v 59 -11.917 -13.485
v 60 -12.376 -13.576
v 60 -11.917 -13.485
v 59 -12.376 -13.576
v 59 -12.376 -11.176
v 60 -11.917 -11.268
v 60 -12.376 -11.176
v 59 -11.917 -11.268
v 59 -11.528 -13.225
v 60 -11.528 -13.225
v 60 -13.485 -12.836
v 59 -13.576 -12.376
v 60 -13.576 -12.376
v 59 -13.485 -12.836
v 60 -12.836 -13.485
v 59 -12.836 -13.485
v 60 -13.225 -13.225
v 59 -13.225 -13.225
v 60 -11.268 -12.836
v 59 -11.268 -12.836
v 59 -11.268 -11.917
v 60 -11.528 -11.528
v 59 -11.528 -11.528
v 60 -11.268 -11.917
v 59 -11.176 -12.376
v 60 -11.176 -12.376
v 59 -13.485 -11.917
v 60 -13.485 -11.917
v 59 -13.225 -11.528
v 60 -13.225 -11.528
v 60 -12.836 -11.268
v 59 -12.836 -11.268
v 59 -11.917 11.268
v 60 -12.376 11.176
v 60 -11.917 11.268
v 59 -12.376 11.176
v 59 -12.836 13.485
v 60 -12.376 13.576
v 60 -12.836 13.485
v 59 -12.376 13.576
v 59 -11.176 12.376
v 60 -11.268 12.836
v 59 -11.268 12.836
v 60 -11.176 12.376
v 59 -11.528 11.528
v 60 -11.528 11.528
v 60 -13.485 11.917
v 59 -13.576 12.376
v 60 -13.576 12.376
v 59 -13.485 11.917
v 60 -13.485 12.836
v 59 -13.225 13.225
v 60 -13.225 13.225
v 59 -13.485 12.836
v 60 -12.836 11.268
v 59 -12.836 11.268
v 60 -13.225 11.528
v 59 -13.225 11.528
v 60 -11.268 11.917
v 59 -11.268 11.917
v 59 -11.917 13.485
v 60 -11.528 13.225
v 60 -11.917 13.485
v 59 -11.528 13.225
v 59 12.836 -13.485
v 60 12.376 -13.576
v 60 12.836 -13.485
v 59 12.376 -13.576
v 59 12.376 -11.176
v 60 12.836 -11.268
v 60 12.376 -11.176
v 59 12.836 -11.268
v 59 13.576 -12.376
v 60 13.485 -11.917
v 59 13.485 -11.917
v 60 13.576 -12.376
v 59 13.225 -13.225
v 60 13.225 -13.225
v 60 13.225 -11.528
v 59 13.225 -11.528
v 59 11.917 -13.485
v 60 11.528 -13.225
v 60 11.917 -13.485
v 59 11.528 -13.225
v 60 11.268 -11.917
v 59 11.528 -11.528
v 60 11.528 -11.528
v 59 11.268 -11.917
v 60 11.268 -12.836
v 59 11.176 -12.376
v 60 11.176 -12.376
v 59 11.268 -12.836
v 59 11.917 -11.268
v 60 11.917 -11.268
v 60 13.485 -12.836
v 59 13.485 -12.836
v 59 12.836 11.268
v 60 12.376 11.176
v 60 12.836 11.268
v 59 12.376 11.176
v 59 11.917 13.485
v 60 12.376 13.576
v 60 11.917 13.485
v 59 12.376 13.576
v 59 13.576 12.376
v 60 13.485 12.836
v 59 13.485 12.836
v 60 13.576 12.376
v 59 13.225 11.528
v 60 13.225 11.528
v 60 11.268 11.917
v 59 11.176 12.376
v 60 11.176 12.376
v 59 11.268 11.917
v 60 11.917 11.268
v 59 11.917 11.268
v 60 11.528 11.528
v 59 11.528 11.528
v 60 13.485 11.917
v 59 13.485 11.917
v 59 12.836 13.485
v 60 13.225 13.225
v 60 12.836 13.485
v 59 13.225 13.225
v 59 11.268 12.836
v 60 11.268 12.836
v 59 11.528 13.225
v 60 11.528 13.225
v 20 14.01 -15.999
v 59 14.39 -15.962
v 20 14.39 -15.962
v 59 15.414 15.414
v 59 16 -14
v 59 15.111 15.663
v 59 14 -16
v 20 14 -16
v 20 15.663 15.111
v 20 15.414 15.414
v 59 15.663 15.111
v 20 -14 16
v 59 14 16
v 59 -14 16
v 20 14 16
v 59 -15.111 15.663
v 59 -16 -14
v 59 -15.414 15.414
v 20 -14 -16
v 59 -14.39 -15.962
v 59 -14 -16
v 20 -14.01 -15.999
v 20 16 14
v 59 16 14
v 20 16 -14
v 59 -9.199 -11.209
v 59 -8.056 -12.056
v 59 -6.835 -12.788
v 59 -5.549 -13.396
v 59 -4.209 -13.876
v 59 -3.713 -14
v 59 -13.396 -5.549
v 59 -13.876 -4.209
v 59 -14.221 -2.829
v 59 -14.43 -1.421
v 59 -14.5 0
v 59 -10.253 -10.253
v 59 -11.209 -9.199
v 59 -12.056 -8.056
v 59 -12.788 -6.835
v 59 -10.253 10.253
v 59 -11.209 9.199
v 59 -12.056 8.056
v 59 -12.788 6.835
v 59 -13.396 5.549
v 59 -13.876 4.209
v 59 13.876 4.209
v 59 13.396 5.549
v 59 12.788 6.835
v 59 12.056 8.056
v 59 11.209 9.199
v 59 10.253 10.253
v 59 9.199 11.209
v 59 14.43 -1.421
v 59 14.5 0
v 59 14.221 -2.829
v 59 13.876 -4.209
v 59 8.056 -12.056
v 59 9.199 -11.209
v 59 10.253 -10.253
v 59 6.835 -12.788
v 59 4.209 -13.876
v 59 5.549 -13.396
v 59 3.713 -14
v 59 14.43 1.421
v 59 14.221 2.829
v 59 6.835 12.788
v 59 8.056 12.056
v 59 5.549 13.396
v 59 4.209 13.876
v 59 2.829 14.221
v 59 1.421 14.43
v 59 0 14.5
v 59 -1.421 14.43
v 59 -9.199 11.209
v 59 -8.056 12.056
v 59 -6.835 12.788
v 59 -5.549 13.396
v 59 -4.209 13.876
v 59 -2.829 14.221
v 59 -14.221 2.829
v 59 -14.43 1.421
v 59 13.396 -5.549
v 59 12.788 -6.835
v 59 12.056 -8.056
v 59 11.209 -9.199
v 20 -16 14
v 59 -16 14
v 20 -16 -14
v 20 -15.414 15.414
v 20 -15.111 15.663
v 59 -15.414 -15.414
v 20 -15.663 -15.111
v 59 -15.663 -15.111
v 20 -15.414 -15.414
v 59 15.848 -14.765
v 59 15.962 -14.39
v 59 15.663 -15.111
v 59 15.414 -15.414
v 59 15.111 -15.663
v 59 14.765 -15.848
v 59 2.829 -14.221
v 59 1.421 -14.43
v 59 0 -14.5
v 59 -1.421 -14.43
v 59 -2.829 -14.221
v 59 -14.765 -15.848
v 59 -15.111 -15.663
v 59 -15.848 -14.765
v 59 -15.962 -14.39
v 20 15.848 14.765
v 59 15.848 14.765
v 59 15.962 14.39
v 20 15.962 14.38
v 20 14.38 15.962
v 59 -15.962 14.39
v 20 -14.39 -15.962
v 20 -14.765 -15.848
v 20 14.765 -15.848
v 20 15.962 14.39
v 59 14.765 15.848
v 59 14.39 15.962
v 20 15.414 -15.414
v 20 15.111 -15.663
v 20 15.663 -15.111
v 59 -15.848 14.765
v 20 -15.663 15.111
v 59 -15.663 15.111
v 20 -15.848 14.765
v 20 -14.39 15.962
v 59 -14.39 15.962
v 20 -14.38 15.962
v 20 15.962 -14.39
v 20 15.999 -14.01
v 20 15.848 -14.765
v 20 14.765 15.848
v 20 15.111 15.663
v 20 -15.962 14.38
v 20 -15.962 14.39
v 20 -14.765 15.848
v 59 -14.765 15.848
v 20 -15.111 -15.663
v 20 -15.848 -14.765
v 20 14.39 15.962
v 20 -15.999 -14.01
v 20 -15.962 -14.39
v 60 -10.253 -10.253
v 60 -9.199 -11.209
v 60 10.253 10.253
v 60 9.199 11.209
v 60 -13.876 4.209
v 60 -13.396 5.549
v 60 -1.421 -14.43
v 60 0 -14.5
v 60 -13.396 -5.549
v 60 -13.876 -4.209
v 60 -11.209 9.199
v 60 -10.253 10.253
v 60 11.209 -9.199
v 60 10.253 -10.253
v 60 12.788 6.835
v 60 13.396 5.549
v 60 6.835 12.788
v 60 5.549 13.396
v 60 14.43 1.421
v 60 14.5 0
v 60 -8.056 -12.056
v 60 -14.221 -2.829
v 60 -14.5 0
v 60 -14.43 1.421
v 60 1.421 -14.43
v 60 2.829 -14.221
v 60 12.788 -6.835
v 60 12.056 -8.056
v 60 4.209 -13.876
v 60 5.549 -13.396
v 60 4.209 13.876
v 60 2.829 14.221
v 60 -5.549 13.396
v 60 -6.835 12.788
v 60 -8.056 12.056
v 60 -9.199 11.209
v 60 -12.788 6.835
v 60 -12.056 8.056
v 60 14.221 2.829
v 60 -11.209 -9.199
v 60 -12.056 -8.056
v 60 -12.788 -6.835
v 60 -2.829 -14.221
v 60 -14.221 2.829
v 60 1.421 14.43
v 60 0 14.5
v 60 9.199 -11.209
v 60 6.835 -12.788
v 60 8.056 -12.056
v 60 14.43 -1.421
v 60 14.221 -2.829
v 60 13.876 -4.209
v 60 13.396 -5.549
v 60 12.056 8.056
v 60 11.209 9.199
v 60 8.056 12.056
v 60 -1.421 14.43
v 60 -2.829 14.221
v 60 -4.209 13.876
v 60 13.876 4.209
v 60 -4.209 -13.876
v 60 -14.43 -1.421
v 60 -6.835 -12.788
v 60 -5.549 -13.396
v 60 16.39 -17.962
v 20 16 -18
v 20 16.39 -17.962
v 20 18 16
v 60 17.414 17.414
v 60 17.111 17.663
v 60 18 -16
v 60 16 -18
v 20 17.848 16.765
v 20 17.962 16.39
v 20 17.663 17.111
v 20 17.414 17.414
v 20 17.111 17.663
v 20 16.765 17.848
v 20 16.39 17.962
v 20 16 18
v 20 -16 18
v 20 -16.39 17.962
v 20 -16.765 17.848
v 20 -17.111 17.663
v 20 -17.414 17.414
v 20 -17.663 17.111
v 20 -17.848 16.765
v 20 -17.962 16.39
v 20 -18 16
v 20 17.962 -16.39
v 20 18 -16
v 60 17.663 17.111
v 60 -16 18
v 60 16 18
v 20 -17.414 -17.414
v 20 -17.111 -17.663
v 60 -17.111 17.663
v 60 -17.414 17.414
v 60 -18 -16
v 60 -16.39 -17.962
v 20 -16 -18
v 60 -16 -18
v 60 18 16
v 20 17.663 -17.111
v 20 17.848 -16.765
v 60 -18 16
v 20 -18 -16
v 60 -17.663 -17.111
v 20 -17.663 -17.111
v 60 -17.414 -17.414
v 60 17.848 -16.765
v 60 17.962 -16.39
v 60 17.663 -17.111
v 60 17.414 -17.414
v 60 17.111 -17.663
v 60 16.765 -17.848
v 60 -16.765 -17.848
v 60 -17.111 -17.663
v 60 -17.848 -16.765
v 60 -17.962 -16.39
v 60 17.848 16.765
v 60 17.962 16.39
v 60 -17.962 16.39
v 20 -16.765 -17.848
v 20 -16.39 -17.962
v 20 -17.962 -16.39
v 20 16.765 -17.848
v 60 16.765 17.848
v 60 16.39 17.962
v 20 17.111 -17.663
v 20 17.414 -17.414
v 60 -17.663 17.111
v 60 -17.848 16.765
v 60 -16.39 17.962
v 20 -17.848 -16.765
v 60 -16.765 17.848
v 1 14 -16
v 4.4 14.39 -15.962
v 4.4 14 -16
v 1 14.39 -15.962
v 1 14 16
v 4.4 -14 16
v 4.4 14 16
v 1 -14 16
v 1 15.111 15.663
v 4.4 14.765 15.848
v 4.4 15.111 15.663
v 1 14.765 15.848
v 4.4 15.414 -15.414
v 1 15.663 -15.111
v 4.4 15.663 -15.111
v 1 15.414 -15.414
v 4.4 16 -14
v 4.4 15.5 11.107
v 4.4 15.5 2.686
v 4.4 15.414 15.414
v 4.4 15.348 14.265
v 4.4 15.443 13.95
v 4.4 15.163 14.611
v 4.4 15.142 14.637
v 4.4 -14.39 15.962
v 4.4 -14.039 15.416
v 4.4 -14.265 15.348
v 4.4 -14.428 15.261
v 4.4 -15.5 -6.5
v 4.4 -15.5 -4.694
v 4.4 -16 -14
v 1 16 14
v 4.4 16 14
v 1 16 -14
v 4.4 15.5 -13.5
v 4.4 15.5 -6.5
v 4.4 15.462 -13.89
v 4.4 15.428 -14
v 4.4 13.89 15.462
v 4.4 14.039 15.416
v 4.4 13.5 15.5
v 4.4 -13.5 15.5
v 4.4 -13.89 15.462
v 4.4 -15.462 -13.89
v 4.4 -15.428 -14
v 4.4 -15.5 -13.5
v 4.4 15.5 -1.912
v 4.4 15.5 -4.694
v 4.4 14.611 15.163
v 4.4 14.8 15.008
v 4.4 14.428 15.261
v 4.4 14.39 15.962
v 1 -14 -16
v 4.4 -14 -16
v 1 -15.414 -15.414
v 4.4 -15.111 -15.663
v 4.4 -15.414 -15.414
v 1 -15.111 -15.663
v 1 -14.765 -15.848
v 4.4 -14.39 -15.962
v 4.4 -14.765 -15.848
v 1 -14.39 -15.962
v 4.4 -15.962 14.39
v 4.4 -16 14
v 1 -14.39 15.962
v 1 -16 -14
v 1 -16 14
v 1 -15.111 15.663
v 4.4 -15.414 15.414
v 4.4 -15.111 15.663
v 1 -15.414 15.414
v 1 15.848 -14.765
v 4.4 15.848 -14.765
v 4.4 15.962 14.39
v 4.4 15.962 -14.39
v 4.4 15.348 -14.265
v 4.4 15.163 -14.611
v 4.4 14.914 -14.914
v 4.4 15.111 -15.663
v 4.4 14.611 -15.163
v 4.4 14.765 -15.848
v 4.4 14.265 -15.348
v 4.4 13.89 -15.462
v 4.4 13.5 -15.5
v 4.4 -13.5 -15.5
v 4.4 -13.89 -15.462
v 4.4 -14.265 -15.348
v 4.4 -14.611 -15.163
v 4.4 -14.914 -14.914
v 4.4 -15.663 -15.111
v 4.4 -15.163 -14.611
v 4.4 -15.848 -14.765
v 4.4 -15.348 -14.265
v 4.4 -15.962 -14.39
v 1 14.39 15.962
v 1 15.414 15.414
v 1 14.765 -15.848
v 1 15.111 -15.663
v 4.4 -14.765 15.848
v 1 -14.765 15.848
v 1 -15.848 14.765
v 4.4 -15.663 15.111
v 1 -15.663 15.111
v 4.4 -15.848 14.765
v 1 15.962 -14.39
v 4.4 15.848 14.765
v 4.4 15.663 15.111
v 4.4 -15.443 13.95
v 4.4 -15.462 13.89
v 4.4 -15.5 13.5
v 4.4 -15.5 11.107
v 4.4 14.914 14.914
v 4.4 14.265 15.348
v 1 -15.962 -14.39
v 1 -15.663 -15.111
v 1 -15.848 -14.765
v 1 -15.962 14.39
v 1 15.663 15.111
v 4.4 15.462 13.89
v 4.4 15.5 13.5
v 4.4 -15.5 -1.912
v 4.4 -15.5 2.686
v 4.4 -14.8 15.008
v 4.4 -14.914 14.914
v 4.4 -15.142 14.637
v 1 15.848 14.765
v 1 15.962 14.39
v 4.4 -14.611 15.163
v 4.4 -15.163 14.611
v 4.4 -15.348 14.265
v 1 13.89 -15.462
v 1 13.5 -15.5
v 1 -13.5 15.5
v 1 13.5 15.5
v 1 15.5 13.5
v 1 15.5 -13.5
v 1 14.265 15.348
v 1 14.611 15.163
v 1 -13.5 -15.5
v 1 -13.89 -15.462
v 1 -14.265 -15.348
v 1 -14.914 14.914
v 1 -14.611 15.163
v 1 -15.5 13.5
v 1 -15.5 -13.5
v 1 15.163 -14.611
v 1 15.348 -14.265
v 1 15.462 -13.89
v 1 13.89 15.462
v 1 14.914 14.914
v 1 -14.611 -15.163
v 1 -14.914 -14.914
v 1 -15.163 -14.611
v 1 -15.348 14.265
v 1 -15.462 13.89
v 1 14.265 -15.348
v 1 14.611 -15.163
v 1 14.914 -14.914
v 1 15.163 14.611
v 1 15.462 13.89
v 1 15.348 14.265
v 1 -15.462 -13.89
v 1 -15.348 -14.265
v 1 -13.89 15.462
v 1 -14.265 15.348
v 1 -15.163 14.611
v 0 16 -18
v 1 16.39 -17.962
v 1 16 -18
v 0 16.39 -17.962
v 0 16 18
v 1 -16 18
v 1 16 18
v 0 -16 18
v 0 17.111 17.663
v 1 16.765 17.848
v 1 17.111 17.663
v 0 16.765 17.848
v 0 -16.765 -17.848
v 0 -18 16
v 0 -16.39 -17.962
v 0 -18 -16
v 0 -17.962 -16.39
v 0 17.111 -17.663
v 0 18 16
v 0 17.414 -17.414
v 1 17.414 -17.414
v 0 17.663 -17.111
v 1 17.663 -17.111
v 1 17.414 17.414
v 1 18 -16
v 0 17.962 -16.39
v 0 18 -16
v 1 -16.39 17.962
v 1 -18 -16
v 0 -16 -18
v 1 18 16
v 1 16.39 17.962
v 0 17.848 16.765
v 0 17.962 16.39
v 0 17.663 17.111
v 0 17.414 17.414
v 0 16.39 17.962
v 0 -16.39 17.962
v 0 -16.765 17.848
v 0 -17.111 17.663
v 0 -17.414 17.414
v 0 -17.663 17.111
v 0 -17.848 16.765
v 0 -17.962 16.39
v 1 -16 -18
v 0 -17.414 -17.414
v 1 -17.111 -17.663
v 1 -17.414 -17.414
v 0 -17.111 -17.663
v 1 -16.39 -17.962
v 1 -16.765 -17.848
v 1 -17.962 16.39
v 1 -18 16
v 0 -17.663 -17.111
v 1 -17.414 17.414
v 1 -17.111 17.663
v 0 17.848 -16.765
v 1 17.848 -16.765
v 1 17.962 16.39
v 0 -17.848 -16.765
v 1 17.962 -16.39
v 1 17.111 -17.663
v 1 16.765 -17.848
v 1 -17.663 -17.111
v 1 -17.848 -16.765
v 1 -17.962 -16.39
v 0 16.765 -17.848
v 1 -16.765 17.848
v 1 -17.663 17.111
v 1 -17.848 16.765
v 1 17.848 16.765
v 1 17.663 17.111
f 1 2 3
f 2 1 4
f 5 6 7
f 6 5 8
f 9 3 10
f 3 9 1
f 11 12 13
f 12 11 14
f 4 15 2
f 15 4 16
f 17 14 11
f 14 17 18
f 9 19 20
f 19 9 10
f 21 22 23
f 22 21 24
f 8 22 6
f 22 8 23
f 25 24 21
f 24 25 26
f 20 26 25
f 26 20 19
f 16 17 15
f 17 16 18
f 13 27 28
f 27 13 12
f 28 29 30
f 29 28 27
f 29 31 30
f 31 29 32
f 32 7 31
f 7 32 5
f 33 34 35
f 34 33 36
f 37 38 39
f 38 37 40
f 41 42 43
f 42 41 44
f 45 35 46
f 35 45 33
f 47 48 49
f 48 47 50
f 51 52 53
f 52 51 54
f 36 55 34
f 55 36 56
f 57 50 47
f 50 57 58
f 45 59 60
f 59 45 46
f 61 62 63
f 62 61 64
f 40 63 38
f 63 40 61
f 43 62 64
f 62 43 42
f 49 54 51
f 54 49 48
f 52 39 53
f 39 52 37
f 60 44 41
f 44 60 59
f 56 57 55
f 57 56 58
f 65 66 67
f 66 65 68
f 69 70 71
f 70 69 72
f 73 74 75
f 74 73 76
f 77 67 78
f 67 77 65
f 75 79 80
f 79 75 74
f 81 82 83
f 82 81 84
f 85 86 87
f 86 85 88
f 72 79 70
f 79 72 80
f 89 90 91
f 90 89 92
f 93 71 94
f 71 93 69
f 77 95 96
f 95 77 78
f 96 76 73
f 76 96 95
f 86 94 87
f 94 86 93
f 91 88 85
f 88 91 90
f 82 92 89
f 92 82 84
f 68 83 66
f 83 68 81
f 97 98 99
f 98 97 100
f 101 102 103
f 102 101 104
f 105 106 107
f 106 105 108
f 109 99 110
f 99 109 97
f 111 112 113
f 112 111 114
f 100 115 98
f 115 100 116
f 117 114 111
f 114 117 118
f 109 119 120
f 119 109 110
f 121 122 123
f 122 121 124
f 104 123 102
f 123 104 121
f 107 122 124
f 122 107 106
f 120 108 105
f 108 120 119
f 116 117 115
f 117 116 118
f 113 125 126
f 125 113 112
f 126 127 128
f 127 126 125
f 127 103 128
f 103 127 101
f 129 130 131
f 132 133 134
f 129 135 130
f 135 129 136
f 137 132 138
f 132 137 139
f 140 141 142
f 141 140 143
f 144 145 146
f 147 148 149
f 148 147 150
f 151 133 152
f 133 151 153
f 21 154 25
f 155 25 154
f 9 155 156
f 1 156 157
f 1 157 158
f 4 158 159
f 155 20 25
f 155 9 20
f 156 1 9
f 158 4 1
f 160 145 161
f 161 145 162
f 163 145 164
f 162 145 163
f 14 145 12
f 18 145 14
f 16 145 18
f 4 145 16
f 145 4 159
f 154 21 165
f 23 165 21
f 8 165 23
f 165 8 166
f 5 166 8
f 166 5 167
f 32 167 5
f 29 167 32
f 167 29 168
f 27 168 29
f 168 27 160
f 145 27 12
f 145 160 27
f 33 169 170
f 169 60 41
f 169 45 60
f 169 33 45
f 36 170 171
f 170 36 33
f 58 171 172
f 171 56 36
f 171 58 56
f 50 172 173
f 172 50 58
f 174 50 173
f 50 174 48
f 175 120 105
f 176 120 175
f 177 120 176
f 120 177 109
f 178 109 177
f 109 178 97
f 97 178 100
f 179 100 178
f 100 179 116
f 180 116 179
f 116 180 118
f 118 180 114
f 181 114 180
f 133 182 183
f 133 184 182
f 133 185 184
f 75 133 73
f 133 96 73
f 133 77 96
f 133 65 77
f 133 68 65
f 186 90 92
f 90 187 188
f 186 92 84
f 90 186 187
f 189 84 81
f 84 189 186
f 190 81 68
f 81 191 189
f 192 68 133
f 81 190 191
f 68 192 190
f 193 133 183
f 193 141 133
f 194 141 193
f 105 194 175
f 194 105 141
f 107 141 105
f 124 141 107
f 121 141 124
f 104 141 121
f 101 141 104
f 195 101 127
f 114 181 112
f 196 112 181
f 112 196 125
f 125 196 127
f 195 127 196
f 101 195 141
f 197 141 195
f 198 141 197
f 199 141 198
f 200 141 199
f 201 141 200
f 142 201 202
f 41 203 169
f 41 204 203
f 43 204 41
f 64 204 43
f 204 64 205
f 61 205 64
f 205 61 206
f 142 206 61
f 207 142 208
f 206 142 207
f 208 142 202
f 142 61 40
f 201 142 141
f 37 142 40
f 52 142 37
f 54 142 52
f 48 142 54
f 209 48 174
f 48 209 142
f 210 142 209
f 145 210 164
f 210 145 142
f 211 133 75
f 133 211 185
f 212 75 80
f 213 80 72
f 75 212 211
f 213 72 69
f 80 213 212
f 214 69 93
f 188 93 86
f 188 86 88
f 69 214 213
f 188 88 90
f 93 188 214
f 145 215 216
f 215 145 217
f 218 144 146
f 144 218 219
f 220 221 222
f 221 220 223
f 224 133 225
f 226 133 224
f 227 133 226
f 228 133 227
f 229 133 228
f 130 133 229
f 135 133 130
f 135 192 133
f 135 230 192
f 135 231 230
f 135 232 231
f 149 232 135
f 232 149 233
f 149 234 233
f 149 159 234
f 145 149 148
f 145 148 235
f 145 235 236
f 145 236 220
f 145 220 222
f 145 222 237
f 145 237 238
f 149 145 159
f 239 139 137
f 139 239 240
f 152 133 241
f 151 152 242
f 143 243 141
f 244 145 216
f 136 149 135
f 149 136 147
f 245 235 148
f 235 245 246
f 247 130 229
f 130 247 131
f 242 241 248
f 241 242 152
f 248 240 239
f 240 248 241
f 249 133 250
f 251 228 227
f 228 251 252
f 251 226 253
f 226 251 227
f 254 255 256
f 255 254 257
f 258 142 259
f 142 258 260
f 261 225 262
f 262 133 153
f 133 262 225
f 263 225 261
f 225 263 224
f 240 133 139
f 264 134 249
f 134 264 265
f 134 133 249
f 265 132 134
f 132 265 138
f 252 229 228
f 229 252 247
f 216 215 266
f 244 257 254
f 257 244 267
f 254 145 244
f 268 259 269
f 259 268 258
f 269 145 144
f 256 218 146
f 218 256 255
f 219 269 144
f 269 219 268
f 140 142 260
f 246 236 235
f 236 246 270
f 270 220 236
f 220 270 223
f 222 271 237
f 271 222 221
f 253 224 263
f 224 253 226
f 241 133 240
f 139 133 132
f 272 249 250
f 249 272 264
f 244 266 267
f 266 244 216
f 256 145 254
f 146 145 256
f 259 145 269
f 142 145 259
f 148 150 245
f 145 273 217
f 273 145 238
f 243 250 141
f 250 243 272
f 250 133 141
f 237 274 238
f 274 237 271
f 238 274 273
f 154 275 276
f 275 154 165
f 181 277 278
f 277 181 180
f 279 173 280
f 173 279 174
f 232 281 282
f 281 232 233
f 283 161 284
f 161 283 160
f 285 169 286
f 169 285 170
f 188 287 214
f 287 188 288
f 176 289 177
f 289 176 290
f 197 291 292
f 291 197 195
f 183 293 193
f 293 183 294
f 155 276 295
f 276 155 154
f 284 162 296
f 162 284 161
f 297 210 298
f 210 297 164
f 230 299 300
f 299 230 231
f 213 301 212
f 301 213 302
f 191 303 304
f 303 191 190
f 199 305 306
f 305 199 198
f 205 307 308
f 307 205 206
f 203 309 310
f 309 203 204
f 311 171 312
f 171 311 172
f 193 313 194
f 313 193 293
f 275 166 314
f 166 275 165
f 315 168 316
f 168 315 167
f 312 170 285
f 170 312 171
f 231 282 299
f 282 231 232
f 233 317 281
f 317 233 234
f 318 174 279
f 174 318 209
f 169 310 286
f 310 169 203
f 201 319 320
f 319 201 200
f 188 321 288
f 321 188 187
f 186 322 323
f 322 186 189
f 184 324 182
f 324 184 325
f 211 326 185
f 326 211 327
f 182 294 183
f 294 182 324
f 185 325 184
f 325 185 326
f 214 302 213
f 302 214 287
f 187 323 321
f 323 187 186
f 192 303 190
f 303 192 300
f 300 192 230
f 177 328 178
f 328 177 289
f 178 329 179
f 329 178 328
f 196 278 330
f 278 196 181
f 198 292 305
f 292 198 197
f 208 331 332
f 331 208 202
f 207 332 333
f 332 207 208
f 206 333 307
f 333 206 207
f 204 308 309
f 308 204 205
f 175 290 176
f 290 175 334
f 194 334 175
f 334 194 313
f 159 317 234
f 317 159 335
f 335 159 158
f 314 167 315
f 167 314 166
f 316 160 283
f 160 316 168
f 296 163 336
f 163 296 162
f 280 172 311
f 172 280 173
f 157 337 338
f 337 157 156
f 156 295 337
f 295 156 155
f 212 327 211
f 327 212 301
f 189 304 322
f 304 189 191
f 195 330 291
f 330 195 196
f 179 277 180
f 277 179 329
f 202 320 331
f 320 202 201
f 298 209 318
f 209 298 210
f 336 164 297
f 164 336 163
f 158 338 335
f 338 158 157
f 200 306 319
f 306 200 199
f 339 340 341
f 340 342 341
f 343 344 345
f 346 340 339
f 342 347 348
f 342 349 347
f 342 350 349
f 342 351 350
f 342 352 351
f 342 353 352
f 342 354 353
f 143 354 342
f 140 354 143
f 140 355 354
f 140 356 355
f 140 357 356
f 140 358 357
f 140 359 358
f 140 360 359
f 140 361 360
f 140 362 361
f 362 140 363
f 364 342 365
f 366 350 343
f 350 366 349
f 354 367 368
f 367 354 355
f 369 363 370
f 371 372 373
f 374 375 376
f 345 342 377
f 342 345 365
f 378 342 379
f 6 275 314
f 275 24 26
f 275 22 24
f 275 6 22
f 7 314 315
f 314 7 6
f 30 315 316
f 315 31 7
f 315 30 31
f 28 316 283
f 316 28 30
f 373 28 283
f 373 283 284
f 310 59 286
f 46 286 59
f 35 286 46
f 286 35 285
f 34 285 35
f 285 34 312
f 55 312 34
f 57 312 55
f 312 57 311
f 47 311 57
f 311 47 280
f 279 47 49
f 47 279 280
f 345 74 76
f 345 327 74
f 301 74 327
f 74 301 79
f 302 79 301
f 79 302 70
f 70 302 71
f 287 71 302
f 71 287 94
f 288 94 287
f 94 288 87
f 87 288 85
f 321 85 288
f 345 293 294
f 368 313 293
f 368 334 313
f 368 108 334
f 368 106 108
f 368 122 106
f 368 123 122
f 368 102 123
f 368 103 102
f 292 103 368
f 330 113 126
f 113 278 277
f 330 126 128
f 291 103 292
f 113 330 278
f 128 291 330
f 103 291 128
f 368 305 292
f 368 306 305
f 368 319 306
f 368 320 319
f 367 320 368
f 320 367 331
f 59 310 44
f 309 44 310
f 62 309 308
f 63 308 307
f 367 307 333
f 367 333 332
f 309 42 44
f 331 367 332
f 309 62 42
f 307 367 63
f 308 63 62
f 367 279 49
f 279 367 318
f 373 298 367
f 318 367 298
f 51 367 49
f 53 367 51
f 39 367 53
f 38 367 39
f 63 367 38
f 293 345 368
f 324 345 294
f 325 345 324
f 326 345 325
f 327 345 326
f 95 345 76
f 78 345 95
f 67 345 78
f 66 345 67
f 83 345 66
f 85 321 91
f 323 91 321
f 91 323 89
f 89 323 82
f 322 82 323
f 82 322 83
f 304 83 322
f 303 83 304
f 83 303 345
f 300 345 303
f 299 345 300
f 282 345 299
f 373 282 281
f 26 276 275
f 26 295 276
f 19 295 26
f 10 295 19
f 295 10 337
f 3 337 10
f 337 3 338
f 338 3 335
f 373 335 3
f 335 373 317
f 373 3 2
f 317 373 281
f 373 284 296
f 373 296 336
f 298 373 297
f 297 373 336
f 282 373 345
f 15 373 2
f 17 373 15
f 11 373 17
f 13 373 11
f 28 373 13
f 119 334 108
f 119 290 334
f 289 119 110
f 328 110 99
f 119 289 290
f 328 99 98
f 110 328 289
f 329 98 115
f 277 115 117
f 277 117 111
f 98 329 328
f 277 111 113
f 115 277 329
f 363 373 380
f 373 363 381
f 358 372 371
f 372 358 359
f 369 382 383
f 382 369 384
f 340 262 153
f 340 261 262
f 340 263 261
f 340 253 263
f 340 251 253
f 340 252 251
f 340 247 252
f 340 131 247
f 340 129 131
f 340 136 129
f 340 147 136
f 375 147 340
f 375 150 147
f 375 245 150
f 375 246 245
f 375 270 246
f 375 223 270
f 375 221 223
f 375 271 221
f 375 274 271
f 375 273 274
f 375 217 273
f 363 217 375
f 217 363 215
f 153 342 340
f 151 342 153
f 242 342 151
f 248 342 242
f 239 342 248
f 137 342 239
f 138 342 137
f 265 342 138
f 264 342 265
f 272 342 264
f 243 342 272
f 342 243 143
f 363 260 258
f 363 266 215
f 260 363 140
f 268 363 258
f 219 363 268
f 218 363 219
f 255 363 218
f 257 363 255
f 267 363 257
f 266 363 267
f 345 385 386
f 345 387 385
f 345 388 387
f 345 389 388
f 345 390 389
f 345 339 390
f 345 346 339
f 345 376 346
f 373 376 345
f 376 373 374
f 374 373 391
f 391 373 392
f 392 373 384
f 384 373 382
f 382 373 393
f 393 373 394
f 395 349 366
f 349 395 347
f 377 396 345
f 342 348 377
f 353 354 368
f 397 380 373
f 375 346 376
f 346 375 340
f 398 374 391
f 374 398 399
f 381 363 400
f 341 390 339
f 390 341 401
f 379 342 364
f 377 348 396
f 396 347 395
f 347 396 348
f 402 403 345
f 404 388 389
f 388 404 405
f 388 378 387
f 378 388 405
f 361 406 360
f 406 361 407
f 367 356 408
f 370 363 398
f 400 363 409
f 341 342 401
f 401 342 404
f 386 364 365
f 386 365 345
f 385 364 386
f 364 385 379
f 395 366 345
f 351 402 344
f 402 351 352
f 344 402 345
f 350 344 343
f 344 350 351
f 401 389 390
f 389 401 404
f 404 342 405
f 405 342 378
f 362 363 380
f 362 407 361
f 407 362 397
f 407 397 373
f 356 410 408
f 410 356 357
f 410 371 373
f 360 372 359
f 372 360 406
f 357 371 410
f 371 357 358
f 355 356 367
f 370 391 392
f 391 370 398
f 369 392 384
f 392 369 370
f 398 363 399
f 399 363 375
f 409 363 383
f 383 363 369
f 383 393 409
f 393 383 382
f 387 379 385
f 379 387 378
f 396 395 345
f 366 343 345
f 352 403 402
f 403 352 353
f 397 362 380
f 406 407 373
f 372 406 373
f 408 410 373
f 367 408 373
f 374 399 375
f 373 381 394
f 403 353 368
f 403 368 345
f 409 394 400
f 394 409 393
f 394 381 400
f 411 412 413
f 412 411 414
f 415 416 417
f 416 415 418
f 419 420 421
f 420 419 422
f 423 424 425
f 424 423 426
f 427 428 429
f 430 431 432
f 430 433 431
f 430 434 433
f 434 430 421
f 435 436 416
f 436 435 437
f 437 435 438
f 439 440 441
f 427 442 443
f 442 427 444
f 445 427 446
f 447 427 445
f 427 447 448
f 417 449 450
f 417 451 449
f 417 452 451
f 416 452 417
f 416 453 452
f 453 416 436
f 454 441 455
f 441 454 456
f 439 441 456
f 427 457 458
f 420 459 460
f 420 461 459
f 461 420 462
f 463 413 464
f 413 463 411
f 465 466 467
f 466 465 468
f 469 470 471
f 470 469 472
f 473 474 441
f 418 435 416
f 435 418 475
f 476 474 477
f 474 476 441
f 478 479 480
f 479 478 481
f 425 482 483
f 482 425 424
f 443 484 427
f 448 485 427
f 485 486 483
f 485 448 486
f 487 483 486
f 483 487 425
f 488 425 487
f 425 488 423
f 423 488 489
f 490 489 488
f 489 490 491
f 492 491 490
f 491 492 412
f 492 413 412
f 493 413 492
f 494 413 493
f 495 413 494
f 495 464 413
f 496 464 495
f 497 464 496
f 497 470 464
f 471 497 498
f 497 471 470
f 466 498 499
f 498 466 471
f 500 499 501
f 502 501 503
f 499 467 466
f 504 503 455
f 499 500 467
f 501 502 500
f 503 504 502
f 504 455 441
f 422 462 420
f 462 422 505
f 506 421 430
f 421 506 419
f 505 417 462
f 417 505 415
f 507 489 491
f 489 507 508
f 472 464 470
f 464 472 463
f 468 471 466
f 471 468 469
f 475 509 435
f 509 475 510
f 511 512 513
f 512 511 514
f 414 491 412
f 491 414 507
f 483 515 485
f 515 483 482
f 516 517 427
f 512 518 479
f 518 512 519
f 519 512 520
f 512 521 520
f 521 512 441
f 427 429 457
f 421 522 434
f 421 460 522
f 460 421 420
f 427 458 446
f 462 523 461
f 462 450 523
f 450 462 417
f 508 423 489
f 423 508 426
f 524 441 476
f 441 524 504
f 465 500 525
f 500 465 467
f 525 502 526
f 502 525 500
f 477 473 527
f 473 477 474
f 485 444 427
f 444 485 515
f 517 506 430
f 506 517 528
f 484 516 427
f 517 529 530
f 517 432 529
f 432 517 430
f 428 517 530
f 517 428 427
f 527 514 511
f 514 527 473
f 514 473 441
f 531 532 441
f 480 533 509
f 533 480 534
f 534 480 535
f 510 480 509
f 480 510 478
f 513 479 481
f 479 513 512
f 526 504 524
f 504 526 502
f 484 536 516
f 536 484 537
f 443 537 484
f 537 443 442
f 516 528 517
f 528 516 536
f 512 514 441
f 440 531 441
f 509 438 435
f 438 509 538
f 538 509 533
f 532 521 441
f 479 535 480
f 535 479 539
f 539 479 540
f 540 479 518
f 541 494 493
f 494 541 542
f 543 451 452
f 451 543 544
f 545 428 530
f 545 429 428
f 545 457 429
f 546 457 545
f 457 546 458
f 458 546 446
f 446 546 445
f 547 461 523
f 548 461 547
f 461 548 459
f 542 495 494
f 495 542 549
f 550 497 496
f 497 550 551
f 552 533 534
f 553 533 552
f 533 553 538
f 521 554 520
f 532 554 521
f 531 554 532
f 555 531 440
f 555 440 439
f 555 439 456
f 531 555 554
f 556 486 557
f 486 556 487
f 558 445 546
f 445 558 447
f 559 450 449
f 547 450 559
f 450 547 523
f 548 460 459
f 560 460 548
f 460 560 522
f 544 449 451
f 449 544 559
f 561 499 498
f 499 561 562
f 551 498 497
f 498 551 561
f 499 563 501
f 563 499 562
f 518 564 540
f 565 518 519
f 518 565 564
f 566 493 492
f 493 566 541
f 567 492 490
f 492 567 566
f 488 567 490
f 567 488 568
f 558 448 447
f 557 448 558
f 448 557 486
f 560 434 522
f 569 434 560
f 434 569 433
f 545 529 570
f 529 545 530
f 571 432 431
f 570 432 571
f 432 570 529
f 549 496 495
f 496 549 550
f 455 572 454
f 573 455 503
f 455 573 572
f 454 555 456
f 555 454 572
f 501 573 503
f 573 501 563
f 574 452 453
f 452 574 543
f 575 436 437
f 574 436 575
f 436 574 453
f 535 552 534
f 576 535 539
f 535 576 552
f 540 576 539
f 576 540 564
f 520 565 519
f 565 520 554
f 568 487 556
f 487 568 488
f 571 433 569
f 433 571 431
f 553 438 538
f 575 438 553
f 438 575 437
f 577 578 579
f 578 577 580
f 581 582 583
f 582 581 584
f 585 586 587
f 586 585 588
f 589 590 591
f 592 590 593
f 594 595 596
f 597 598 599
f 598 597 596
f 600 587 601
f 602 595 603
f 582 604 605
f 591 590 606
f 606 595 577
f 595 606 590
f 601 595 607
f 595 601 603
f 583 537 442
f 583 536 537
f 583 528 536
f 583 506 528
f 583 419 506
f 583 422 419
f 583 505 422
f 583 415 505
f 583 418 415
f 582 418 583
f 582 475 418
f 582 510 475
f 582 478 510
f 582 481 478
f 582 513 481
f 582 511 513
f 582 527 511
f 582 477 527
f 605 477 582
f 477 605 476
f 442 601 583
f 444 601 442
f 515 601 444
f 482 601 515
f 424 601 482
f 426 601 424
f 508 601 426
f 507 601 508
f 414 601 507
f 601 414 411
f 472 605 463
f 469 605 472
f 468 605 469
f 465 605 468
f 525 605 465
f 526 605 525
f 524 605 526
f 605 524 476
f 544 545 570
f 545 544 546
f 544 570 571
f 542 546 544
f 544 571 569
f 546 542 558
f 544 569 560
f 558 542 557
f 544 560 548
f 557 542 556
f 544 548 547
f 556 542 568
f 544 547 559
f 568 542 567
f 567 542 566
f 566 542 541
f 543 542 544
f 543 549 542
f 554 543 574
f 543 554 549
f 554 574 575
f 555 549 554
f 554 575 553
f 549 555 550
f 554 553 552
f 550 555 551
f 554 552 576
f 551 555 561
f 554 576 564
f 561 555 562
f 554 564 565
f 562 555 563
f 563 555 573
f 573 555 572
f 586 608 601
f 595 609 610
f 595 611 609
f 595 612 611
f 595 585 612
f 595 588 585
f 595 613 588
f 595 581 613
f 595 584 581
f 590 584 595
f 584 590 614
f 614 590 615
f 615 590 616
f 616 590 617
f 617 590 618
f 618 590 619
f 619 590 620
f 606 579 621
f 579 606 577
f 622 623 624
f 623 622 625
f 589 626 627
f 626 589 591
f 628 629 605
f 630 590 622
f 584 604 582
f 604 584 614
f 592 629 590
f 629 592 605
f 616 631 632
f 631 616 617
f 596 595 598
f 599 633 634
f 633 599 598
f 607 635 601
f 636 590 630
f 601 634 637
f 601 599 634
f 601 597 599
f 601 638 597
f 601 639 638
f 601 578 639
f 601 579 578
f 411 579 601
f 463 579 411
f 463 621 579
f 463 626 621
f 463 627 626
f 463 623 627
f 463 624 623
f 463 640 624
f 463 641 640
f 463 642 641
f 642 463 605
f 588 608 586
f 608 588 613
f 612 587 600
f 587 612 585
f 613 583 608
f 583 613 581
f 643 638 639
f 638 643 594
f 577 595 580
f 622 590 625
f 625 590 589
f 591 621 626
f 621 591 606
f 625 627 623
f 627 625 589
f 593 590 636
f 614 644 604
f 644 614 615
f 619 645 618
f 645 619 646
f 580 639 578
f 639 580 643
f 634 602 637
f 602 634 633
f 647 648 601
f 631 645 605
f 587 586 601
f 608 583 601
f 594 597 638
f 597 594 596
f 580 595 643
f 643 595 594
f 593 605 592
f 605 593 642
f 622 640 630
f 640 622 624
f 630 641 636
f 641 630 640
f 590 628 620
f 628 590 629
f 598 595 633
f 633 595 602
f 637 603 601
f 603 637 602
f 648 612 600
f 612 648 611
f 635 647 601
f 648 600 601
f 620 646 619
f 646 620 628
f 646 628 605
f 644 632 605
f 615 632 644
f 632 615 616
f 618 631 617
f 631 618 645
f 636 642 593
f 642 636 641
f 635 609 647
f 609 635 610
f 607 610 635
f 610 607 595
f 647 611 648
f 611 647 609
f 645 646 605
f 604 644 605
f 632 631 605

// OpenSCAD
// file: ../speaker_stand.scad
//
// Speaker Stand
//
// by Yasuhiro Wabiko
//
// This work is licensed under a Creative Commons Attribution 4.0 International License.
// https://creativecommons.org/licenses/by/4.0/
//
use <prim.scad>

default_stand_z =40;
default_base_x = 36;
default_base_y = 36;
default_base_z = 4;
default_base_r = 2;
default_pole_r = 4; // pole body radius
default_pole_z = 36;
default_pole_rr = 1; // pole corner radius
default_joint_z = 2;
default_joint_extra_z = 0;
default_joint_r = 3;


WELDING = 0.1;

// render target; this is meant to be overriden by Makefile
TARGET="default";

//
// top level logic
//
speaker_stand_main();

module speaker_stand_main(target=TARGET){
    
    if (target == "default") {
        speaker_stand(stand_z=40, base_x=30, base_y=30, pole_r=8);
    }

    if (target == "ce32a") {
        speaker_stand(stand_z=40, base_x=(36-2)*0.8, base_y=(36-2)*0.8, pole_r=4);
    }

    if (target == "ce32a_type2") {
        speaker_stand(stand_z=40, base_x=(33.2-2)*0.8, base_y=(33.2-2)*0.8, pole_r=4);
    }

    if (target == "b1s") {
        speaker_stand(stand_z=40, base_x=(40-2)*0.8, base_y=(40-2)*0.8, pole_r=4);
    }

    if (target == "ce32a_tallboy") {
        speaker_stand(stand_z=40, base_z=0, pole_r=18, base_x=32*0.8, base_y=32*0.8);
    }

    if (target == "b1s_tallboy") {
        speaker_stand(stand_z=40, base_x=(40-2)*0.8, base_y=(40-2)*0.8, pole_r=4);
    }

}

// [Public]
// A speaker stand.
//
// stand_z = total height (= base height + pole height) i.e how high the speaker is put from the ground.
// (base_x, base_y, base_z, base_r) = stand base dimension
// (joint_z, joint_r) = joint configuration
// pole_r = pole radius
//
// NOTE: pole height is generated by total height - base_height.
module speaker_stand(stand_z = default_stand_z,
                     base_x = default_base_x,
                     base_y = default_base_y,
                     base_z = default_base_z,
                     base_r = default_base_r,
                     joint_r = default_joint_r,
                     joint_z = default_joint_z,
                     pole_r = default_pole_r,
                     pole_rr = default_pole_rr) {

    pole_z = stand_z-base_z;

    speaker_stand_unit(stand_z = stand_z,
                       base_x = base_x,
                       base_y = base_y,
                       base_z = base_z,
                       base_r = base_r,
                       joint_r = joint_r,
                       joint_z = joint_z,
                       pole_r = pole_r,
                       pole_z = pole_z,
                       pole_rr = default_pole_rr );
}

// (for testing) when you want to override design parameters in detail
module speaker_stand_unit(stand_z = default_stand_z,
                          base_x = default_base_x,
                          base_y = default_base_y,
                          base_z = default_base_z,
                          base_r = default_base_r,
                          joint_r = default_joint_r,
                          joint_z = default_joint_z,
                          joint_extra_z  = default_joint_extra_z,
                          pole_r = default_pole_r,
                          pole_z = default_pole_z,
                          pole_rr = default_pole_rr,
                          joint_fn = 32,
                          pole_fn = 64,
                          base_fn = 64,
                          clip_z = 0.6) {
    clip_r = joint_r;
    
    translate([0, 0, 0]) {
        // base plate
        translate([0, 0, base_z/2]) {
            prim_round_zplate0(base_x, base_y, base_z, base_r, base_fn);
        }

        translate([0, 0, pole_z/2]) {
            difference() {
                union() {
                    // pole (inner joint)
                    translate([0, 0, pole_z/2+joint_z/2-WELDING+clip_z/2]) {
                        cylinder(r = joint_r, $fn = joint_fn, h = joint_z+WELDING+clip_z, center=true);
                    }

                    // clip
                    translate([0, 0, pole_z/2+joint_z+clip_z/2]) {
                        minkowski() {
                            cylinder(r = clip_r, $fn = joint_fn, h = 0.2, center=true);
                            sphere(r=0.2, $fn=32);
                        }
                    }
                }
                union() {
                    // slits for easier joint 
                    translate([0, 0, pole_z/2]) {
                        for (i=[0:1:7]) {
                            rotate([0,0,45*i]) {
                                cube([8, 0.4, joint_z*6], center=true);
                            }
                        }
                    }

                    // pole (empty inside)
                    translate([0, 0, pole_z/2+joint_z/2-WELDING+clip_z/2]) {
                        //    cylinder(r = joint_r-0.5, $fn = joint_fn, h = joint_z+WELDING*4+clip_z, center=true);
                    }
                }
            } // difference

            // pole (outer)
            translate([0, 0, base_z/2-WELDING]) {
                //cylinder(r = pole_r, $fn = pole_fn, h = pole_z-base_z+WELDING, center=true);
                prim_round_zplate0(pole_r*2, pole_r*2, pole_z-base_z+WELDING, pole_rr, 32);
            }

            // pole (joint's inner stuffing for more strength)
            translate([0, 0, pole_z/2+joint_z/2-WELDING+clip_z/2]) {
                cylinder(r = clip_r-1, $fn = joint_fn, h = joint_z+WELDING+clip_z, center=true);
            }
        }
    }
}
// main file
use <../CE32A_Rev1.scad>
translate([40,0,0]) {
    ce32a_unit_body_only(40, 36, 36);
}
ce32a_unit_lid_only(40,  36, 36, with_hole=0);
